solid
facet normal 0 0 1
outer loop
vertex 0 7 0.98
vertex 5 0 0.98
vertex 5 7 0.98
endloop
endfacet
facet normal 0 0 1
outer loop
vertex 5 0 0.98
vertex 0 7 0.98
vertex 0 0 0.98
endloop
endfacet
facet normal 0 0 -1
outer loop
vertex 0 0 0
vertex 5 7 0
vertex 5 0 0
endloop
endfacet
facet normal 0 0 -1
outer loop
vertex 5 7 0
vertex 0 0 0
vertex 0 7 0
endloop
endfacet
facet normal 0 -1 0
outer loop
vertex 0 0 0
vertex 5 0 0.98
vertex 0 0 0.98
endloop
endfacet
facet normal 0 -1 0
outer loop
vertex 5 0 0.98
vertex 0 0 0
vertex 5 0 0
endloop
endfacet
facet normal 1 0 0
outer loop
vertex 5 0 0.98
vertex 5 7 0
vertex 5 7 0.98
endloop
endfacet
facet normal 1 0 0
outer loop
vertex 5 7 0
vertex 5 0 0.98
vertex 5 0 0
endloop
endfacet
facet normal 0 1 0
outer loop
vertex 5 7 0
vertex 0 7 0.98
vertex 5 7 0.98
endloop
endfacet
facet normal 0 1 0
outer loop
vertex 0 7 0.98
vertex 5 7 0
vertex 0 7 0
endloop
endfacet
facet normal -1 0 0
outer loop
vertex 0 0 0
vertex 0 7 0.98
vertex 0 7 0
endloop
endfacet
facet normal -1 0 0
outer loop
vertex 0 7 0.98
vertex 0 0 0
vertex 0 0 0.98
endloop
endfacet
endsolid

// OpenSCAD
/* Warning, this is a very basic generator with a lot of approximation 
input data : [CABGA, JYX, 5x7x0.98mm, 22, , A, C04-00414A]
generated by com.zoubworld.electronics.cad.model3d.Basic
Date : Sun Feb 15 10:50:48 CET 2026
*/

//body
color("black")
translate([0,0,0])
cube([5.0,7.0,0.98], center=false);
